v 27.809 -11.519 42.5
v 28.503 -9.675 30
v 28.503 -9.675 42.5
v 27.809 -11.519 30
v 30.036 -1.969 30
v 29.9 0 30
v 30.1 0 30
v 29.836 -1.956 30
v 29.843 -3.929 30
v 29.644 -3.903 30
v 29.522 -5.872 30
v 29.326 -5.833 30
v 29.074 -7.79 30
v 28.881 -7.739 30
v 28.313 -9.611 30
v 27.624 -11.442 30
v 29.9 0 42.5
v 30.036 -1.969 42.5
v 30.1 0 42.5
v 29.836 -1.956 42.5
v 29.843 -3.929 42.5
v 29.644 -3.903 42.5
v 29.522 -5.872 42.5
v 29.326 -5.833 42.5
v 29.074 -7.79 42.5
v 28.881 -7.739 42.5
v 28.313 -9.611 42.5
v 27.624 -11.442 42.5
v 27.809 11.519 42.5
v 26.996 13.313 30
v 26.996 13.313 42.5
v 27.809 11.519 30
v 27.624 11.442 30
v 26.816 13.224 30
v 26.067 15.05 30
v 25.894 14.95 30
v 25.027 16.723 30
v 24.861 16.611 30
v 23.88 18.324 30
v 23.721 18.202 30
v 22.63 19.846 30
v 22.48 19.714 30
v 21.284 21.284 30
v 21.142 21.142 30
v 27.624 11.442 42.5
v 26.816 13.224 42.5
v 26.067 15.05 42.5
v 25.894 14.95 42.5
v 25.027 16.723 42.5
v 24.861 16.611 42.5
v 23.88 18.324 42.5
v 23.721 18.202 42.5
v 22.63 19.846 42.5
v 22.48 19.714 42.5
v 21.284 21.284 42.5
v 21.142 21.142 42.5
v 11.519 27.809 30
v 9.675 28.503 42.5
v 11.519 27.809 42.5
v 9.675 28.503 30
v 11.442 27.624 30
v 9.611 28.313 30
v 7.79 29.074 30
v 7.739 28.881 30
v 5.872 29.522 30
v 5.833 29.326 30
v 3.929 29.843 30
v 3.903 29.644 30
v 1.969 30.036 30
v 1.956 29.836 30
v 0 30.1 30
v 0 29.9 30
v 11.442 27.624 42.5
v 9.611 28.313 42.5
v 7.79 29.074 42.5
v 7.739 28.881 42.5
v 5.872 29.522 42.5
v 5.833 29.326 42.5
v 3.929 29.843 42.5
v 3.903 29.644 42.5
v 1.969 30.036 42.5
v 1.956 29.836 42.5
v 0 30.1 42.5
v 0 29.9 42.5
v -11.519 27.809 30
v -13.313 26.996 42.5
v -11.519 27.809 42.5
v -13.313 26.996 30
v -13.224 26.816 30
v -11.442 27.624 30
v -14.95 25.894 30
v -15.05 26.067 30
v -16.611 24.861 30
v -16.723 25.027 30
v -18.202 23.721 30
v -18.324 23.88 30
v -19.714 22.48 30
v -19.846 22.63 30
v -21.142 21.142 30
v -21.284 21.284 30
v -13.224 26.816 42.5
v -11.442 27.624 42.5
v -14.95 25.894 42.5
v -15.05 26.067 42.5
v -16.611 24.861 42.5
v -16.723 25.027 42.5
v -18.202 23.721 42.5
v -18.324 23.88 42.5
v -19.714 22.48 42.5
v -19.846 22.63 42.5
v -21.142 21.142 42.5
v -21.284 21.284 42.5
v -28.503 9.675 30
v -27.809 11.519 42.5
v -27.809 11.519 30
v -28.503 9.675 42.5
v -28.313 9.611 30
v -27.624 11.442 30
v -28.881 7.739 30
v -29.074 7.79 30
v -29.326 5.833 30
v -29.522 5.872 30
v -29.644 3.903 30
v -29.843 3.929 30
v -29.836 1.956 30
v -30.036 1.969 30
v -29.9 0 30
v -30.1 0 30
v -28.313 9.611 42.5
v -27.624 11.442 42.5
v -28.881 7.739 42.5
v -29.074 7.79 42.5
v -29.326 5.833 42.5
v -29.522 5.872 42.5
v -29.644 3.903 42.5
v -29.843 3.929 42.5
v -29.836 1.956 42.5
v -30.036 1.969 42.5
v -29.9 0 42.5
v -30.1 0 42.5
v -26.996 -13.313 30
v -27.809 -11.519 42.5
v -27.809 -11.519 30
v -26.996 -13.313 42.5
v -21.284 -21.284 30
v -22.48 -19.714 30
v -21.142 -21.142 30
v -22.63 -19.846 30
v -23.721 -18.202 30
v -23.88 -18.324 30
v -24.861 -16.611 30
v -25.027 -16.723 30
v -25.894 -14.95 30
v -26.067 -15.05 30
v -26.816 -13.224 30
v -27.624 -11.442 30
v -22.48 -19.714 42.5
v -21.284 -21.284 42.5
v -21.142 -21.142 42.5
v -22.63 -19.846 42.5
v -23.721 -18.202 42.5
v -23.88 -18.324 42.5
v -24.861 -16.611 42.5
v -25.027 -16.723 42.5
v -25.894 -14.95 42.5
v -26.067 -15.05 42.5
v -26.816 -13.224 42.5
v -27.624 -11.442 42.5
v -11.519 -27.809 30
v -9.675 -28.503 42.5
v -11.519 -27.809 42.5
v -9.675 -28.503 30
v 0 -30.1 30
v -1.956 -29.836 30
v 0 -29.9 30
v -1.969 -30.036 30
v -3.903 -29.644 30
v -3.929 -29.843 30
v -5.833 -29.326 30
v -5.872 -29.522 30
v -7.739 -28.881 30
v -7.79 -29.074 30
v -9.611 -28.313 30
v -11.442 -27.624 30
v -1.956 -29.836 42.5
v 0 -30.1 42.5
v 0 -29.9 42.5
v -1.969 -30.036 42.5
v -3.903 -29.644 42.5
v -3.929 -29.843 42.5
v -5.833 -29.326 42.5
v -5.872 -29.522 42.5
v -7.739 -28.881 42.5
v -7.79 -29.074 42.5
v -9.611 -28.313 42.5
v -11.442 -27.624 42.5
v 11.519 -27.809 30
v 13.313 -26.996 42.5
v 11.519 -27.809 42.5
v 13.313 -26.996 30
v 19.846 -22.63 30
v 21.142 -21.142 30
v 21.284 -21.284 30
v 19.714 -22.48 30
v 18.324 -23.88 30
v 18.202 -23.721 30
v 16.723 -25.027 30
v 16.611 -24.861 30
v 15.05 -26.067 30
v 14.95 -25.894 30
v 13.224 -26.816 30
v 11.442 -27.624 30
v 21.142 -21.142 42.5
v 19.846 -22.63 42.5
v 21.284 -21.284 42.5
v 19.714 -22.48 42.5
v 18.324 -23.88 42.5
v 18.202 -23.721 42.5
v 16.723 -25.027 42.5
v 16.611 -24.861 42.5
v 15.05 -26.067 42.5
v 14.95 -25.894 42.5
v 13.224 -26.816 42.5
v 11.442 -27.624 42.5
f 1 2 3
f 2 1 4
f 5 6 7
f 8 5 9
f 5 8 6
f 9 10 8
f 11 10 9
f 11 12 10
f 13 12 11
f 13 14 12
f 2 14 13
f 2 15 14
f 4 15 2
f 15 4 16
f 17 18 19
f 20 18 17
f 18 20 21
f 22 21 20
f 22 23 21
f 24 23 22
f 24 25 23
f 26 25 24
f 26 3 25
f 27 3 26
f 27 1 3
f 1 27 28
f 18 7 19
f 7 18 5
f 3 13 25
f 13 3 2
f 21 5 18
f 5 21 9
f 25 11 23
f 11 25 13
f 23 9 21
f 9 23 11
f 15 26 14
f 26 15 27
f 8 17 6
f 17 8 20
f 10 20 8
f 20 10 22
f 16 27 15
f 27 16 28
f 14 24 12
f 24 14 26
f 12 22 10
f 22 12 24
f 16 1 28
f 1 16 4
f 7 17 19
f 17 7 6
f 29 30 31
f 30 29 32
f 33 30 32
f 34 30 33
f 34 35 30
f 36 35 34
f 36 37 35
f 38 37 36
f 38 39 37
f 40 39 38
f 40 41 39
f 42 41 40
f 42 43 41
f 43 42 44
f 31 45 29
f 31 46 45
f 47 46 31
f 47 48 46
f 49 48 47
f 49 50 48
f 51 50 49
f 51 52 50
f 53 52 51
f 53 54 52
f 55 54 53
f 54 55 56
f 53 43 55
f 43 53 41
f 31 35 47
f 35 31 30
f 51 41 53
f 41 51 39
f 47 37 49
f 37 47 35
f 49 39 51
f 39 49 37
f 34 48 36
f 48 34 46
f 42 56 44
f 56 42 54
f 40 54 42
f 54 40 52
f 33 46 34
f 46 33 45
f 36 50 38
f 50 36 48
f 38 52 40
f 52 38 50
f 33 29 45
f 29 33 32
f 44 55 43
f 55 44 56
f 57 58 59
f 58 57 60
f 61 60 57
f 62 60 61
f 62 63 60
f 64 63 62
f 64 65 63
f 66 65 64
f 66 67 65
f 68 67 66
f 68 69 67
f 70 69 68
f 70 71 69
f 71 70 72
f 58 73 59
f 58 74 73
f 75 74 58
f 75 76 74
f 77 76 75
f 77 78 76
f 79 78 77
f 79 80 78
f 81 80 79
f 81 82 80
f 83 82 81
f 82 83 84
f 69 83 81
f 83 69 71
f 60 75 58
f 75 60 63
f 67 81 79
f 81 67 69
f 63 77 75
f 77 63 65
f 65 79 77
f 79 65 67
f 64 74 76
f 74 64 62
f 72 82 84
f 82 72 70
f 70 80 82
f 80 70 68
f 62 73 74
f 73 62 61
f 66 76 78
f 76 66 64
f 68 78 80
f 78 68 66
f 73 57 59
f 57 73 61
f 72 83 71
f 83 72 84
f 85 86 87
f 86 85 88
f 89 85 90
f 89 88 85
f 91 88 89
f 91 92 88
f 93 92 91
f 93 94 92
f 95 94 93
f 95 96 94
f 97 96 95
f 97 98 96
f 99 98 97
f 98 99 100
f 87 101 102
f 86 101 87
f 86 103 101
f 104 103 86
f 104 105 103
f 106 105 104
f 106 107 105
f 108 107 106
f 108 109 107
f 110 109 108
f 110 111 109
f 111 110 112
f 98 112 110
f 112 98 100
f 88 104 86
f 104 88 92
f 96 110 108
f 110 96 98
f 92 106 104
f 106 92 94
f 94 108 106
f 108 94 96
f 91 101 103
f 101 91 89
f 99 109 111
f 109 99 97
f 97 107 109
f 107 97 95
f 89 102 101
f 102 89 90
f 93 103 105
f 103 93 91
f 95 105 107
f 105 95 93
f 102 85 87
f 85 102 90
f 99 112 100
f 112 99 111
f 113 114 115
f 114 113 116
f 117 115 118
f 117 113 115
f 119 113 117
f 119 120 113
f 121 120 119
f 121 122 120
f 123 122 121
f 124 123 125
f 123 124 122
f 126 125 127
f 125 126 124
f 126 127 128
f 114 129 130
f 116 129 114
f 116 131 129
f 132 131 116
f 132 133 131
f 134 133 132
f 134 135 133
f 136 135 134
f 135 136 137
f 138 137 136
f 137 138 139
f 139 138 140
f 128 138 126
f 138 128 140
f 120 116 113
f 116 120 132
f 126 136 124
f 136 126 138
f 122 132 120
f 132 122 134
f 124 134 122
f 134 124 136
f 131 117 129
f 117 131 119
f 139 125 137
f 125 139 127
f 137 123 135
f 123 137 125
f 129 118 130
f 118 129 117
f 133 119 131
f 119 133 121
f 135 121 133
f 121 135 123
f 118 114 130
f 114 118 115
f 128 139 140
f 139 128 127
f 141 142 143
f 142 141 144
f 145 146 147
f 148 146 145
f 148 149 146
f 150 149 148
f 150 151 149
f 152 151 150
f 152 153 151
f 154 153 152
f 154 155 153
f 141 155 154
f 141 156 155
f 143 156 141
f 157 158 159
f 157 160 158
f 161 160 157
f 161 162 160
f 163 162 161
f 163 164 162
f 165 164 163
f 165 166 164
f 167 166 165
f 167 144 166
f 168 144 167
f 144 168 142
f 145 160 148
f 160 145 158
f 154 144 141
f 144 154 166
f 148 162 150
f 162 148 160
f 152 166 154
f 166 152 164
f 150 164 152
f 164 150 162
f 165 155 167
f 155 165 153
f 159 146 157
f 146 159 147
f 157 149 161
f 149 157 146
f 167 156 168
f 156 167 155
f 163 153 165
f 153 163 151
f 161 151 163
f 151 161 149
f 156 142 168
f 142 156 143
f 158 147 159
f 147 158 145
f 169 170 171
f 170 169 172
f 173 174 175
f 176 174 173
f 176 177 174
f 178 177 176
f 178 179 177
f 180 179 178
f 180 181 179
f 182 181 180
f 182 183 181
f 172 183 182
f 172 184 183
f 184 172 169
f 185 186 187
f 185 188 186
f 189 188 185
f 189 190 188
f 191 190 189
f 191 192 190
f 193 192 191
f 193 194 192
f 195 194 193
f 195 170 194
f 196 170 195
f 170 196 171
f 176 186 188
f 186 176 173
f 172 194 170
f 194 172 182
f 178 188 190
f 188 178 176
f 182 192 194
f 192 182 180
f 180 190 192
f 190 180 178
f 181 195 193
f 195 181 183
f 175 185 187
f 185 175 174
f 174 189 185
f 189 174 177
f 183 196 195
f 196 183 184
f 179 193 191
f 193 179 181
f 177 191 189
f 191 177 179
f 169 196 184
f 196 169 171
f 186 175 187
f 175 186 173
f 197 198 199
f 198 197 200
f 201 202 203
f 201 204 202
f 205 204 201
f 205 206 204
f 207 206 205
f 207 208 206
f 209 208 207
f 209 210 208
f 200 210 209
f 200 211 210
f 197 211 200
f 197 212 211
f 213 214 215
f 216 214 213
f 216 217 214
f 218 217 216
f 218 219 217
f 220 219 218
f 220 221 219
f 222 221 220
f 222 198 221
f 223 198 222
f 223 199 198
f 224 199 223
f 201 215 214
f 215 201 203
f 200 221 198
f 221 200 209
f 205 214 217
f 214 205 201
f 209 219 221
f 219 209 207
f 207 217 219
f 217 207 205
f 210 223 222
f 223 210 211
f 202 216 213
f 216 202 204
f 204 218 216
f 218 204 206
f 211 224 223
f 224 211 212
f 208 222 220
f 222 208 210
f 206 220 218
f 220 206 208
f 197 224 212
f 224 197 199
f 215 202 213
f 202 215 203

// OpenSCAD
// file: def.scad
round_radius = 0.6;
sticker_margin = 1.2;
sticker_round_radius = 0.4;
cube_size = 60;
disk_height = 12.5;
disk_radius = cube_size / 2;
base_size = cube_size / 2 / sqrt(10 + 7 * sqrt(2));
cut1_dis = base_size * (1 + sqrt(2) / 2);
cut2_dis = cube_size / 2;
inf = cube_size * 10;

module _cube() {
    cube([cube_size - round_radius * 2, cube_size - round_radius * 2, cube_size - round_radius * 2], center = true);
}

module _disk() {
    translate([0, 0, cube_size / 2 + disk_height / 2])
        cylinder(r = disk_radius - round_radius, h = disk_height - round_radius * 2, center = true, $fn = 96);
}

module _int_cut1() {
    translate([-inf, -inf, cut1_dis + round_radius])
        cube([inf * 2, inf * 2, inf]);
}

module _dif_cut1() {
    translate([-inf, -inf, cut1_dis - round_radius])
        cube([inf * 2, inf * 2, inf]);
}

module _sticker_int_cut1() {
    translate([-inf, -inf, cut1_dis + sticker_margin])
        cube([inf * 2, inf * 2, inf]);
}

module _sticker_dif_cut1() {
    translate([-inf, -inf, cut1_dis - sticker_margin])
        cube([inf * 2, inf * 2, inf]);
}

module _int_cut2() {
    translate([-inf, -inf, cut2_dis + round_radius])
        cube([inf * 2, inf * 2, inf]);
}

module _dif_cut2() {
    translate([-inf, -inf, cut2_dis - round_radius])
        cube([inf * 2, inf * 2, inf]);
}

module _sticker_int_cut2() {
    translate([-inf, -inf, cut2_dis + sticker_margin])
        cube([inf * 2, inf * 2, inf]);
}

module _sticker_dif_cut2() {
    translate([-inf, -inf, cut2_dis - sticker_margin])
        cube([inf * 2, inf * 2, inf]);
}

module _sticker_cube() {
    translate([-cube_size / 2 + sticker_margin, -cube_size / 2 + sticker_margin, cube_size / 2 - 0.05])
        cube([cube_size - sticker_margin * 2, cube_size - sticker_margin * 2, 0.1]);
}

module _sticker_disk() {
    translate([0, 0, cube_size / 2 + disk_height - 0.05])
        cylinder(r = disk_radius - sticker_margin, h = 0.1, center = true, $fn = 96);
}
// main file
include <def.scad>

module selector_1_cw() {
    difference() {
        difference() {
            translate([0, 0, cube_size / 2 + disk_height / 2])
                cylinder(r = disk_radius + 0.1, h = disk_height, center = true, $fn = 96);
            cylinder(r = disk_radius - 0.1, h = inf * 2, center = true, $fn = 96);
        }
        for (deg = [-22.5, -180])
        rotate([90, 0, deg])
            translate([-inf, -inf, 0])
                cube([inf * 2, inf * 2, inf]);
    }
}

for (deg = [0 : 45 : 315])
    rotate([0, 0, deg])
        selector_1_cw();
